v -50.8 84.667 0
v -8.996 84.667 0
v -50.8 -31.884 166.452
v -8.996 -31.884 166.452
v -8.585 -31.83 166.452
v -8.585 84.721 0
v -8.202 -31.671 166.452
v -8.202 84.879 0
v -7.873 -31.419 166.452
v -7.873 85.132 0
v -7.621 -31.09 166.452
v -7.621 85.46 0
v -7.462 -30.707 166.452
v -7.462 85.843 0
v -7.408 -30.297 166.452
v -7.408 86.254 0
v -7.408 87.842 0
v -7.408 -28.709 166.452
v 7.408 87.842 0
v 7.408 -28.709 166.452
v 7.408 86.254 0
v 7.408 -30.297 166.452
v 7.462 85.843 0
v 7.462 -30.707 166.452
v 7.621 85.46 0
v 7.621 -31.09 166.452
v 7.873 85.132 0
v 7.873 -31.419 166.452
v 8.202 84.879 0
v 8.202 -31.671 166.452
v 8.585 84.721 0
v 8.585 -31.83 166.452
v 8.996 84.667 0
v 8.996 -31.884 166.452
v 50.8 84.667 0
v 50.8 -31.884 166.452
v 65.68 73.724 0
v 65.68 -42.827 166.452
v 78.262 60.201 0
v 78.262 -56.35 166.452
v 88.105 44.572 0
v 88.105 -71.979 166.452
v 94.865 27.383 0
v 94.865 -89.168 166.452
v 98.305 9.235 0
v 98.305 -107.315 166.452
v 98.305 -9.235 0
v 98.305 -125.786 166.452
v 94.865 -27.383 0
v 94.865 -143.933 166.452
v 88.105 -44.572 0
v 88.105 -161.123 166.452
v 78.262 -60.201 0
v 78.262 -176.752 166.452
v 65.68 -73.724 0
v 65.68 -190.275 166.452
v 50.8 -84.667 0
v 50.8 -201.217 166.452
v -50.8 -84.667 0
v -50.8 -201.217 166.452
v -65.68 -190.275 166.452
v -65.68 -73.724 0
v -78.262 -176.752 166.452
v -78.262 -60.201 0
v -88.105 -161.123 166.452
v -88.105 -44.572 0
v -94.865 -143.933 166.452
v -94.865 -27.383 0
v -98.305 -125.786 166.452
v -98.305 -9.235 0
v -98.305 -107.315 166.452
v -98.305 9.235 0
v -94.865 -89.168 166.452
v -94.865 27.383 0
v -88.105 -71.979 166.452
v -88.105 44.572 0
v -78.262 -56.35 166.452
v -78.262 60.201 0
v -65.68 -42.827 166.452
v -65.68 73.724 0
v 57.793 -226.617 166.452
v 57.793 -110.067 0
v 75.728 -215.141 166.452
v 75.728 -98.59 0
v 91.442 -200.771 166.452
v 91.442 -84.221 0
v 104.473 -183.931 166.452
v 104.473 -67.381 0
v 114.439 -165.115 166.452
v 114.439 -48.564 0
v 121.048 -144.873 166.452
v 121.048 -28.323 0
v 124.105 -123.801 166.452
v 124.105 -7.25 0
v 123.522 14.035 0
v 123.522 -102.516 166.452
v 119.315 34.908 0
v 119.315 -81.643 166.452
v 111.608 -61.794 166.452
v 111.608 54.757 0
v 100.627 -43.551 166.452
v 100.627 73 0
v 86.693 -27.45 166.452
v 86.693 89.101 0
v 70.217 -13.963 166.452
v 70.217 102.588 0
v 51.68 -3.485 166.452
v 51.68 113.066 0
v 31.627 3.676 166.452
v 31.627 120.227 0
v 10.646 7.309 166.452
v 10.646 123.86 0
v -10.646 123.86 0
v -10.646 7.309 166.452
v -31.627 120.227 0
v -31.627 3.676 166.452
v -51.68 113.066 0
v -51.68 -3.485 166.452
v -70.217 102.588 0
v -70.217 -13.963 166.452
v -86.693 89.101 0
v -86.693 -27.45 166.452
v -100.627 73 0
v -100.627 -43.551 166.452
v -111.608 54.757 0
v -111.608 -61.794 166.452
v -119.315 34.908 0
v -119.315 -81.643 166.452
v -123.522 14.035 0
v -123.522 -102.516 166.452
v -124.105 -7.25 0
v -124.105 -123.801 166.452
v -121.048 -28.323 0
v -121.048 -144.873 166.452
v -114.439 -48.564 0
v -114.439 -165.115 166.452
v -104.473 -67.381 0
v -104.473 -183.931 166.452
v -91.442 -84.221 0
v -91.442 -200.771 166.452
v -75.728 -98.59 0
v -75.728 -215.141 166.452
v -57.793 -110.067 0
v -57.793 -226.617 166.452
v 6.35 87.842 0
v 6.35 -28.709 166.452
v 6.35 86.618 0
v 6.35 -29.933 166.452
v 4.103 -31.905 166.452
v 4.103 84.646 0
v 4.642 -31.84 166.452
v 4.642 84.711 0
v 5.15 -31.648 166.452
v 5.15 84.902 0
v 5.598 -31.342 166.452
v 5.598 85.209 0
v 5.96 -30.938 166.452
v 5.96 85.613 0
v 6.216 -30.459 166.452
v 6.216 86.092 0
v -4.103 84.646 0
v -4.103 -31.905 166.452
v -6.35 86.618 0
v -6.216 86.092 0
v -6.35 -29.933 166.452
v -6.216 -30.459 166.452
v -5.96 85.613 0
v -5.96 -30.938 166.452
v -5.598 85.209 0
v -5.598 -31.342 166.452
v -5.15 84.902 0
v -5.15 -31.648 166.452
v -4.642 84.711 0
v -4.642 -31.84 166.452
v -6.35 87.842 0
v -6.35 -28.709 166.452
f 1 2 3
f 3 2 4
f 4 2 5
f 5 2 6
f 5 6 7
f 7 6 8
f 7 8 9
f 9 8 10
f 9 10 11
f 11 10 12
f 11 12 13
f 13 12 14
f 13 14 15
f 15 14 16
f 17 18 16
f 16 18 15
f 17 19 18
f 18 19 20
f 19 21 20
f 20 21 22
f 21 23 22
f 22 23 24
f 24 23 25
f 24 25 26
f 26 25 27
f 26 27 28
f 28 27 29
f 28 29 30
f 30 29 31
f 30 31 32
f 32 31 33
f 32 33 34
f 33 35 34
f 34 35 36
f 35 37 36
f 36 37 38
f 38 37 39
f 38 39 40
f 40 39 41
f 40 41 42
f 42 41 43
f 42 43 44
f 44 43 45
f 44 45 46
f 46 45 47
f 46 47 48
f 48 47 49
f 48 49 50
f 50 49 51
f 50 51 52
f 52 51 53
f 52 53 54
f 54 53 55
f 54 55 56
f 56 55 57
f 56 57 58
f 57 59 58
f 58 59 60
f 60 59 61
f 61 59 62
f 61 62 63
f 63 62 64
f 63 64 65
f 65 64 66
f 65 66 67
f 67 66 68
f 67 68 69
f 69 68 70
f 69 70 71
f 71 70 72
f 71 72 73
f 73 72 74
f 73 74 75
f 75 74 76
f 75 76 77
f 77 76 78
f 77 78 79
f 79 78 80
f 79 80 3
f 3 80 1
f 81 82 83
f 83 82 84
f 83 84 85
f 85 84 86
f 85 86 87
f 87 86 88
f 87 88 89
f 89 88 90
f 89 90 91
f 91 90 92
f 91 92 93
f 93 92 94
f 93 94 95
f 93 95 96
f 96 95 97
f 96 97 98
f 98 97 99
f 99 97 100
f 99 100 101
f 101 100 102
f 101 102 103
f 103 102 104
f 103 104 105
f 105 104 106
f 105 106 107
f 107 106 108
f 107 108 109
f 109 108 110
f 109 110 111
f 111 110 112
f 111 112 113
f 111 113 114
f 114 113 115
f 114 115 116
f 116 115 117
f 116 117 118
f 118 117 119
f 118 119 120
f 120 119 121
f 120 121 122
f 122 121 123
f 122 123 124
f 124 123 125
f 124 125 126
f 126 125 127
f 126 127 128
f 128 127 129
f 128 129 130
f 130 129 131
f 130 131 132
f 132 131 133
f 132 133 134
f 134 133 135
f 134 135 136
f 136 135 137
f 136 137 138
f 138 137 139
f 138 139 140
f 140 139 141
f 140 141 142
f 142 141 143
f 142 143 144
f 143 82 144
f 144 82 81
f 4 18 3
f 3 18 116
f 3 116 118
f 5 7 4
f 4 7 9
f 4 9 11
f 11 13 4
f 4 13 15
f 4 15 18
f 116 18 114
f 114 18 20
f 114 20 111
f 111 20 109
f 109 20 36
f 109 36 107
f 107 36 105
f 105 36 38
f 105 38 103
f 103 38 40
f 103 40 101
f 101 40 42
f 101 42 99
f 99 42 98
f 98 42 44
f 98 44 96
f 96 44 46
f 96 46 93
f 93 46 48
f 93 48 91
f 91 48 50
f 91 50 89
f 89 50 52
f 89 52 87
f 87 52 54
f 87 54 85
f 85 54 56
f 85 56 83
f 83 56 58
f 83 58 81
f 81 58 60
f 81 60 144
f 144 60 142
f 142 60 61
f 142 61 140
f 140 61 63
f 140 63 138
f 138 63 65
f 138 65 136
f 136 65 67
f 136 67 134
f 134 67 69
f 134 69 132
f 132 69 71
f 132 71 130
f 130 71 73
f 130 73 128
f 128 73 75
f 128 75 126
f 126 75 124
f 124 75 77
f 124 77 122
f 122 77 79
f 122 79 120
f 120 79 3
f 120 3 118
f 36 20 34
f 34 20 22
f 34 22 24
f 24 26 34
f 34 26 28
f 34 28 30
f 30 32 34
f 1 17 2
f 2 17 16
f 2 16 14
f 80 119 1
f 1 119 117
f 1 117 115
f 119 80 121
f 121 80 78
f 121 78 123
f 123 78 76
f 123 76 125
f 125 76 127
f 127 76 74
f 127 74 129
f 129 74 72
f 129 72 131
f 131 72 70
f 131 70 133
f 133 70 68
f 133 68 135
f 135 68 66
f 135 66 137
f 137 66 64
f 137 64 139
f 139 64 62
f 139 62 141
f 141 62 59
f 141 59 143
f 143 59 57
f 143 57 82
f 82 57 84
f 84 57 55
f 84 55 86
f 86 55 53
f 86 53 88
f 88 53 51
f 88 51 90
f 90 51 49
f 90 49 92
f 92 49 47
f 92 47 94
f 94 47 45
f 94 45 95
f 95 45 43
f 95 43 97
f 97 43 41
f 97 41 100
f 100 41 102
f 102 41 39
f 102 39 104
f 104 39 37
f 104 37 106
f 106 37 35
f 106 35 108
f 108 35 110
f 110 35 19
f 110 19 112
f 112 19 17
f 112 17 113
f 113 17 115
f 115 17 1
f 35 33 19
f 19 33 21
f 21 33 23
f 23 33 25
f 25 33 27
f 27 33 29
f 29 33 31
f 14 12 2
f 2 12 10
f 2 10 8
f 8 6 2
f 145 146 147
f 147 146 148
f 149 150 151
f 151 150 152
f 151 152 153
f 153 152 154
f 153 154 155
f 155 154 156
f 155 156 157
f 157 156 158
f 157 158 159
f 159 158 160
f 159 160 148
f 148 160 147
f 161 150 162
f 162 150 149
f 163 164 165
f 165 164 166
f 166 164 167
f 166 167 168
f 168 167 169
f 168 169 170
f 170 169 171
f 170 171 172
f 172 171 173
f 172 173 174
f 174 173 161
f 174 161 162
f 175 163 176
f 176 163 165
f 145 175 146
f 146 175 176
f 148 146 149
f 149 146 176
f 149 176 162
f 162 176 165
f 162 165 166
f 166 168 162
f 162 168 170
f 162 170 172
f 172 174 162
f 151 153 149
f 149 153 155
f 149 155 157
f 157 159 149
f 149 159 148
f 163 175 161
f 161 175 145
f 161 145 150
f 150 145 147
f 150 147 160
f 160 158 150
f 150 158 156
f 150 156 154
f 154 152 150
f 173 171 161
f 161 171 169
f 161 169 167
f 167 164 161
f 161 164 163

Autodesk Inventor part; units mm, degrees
ref_plane "YZ Plane" through (0, 0, 0) normal (1, 0, 0) x (0, 1, 0)
ref_plane "XZ Plane" through (0, 0, 0) normal (0, 1, 0) x (-1, 0, 0)
sketch "Sketch1" plane through (0, 0, 0) normal (0, 0, 1) x (1, 0, 0)
  line L0 (-50.8, -84.6667) -> (50.8, -84.6667)
  arc A0 (57.793, -110.0667) -> (-57.793, -110.0667) centre (0, 0) ccw
  arc A1 (-50.8, 84.6667) -> (-50.8, -84.6667) centre (0, 0) ccw
  arc A2 (50.8, -84.6667) -> (50.8, 84.6667) centre (0, 0) ccw
  line L1 (-57.793, -110.0667) -> (57.793, -110.0667)
  line L2 (0, 84.6667) -> (8.9958, 84.6667) construction
  arc A3 (7.4083, 86.2542) -> (8.9958, 84.6667) centre (8.9958, 86.2542) ccw
  arc A4 (-8.9958, 84.6667) -> (-7.4083, 86.2542) centre (-8.9958, 86.2542) ccw
  line L3 (0, 84.6667) -> (0, 87.8417) construction
  line L4 (-7.4083, 87.8417) -> (-7.4083, 86.2542)
  line L5 (7.4083, 87.8417) -> (7.4083, 86.2542)
  line L6 (-7.4083, 87.8417) -> (7.4083, 87.8417)
  line L7 (-8.9958, 84.6667) -> (0, 84.6667) construction
  line L8 (0, 84.646) -> (0, 87.8417) construction
  line L9 (4.1034, 84.646) -> (0, 84.646)
  line L10 (6.35, 87.8417) -> (0, 87.8417)
  line L11 (6.3485, 84.6667) -> (3.1743, 87.8409) construction
  line L12 (6.35, 87.8417) -> (6.35, 86.6178)
  arc A5 (4.1034, 84.646) -> (6.35, 86.6178) centre (4.1034, 86.9117) ccw
  arc A6 (6.35, 87.8417) -> (3.1736, 84.646) centre (6.3485, 84.6667) ccw construction
  line L13 (7.4083, 87.8417) -> (-7.4083, 87.8417)
  line L14 (-4.1034, 84.646) -> (0, 84.646)
  line L15 (-6.35, 87.8417) -> (0, 87.8417)
  line L16 (-6.3485, 84.6667) -> (-3.1743, 87.8409) construction
  line L17 (-6.35, 87.8417) -> (-6.35, 86.6178)
  arc A7 (-6.35, 86.6178) -> (-4.1034, 84.646) centre (-4.1034, 86.9117) ccw
  arc A8 (-3.1736, 84.646) -> (-6.35, 87.8417) centre (-6.3485, 84.6667) ccw construction
  line L18 (-50.8, 84.6667) -> (-8.9958, 84.6667)
  line L19 (8.9958, 84.6667) -> (50.8, 84.6667)
  dimension "d1" = 101.6
  dimension "d2" = 25.4
  dimension "d34" = 14.8167
  dimension "d35" = 1.5875
  dimension "d36" = 1.5875
  dimension "d37" = 6.35
  dimension "d38" = 3.175
  dimension "d39" = 45
  dimension "d40" = 2.2657
  dimension "d41" = 2.2466
ref_plane "Work Plane2" through (0, 0, 203.2) normal (0, 0, 1) x (1, 0, 0)
sketch "Sketch6" plane through (0, 0, 0) normal (1, 0, 0) x (0, 1, 0)
  line L0 (-110.0667, 0) -> (124.3169, 0) projected
  line L1 (-83.4784, 0) -> (-200.0291, 166.4517)
  point P0 (0, 0)
  dimension "d28" = 203.2
  dimension "d29" = 55
sweep "ramp" add profiles "Sketch1" path "Sketch6" path curves L1
sweep "light angle" add profiles "Sketch1" path "Sketch6" separate body path curves L1 contours L6 L12 A5 L9 L14 A7 L17
equation "\"d35\" = 0.5 * d42"
equation "\"d42\" = 3.175"
properties part number "ramp"
